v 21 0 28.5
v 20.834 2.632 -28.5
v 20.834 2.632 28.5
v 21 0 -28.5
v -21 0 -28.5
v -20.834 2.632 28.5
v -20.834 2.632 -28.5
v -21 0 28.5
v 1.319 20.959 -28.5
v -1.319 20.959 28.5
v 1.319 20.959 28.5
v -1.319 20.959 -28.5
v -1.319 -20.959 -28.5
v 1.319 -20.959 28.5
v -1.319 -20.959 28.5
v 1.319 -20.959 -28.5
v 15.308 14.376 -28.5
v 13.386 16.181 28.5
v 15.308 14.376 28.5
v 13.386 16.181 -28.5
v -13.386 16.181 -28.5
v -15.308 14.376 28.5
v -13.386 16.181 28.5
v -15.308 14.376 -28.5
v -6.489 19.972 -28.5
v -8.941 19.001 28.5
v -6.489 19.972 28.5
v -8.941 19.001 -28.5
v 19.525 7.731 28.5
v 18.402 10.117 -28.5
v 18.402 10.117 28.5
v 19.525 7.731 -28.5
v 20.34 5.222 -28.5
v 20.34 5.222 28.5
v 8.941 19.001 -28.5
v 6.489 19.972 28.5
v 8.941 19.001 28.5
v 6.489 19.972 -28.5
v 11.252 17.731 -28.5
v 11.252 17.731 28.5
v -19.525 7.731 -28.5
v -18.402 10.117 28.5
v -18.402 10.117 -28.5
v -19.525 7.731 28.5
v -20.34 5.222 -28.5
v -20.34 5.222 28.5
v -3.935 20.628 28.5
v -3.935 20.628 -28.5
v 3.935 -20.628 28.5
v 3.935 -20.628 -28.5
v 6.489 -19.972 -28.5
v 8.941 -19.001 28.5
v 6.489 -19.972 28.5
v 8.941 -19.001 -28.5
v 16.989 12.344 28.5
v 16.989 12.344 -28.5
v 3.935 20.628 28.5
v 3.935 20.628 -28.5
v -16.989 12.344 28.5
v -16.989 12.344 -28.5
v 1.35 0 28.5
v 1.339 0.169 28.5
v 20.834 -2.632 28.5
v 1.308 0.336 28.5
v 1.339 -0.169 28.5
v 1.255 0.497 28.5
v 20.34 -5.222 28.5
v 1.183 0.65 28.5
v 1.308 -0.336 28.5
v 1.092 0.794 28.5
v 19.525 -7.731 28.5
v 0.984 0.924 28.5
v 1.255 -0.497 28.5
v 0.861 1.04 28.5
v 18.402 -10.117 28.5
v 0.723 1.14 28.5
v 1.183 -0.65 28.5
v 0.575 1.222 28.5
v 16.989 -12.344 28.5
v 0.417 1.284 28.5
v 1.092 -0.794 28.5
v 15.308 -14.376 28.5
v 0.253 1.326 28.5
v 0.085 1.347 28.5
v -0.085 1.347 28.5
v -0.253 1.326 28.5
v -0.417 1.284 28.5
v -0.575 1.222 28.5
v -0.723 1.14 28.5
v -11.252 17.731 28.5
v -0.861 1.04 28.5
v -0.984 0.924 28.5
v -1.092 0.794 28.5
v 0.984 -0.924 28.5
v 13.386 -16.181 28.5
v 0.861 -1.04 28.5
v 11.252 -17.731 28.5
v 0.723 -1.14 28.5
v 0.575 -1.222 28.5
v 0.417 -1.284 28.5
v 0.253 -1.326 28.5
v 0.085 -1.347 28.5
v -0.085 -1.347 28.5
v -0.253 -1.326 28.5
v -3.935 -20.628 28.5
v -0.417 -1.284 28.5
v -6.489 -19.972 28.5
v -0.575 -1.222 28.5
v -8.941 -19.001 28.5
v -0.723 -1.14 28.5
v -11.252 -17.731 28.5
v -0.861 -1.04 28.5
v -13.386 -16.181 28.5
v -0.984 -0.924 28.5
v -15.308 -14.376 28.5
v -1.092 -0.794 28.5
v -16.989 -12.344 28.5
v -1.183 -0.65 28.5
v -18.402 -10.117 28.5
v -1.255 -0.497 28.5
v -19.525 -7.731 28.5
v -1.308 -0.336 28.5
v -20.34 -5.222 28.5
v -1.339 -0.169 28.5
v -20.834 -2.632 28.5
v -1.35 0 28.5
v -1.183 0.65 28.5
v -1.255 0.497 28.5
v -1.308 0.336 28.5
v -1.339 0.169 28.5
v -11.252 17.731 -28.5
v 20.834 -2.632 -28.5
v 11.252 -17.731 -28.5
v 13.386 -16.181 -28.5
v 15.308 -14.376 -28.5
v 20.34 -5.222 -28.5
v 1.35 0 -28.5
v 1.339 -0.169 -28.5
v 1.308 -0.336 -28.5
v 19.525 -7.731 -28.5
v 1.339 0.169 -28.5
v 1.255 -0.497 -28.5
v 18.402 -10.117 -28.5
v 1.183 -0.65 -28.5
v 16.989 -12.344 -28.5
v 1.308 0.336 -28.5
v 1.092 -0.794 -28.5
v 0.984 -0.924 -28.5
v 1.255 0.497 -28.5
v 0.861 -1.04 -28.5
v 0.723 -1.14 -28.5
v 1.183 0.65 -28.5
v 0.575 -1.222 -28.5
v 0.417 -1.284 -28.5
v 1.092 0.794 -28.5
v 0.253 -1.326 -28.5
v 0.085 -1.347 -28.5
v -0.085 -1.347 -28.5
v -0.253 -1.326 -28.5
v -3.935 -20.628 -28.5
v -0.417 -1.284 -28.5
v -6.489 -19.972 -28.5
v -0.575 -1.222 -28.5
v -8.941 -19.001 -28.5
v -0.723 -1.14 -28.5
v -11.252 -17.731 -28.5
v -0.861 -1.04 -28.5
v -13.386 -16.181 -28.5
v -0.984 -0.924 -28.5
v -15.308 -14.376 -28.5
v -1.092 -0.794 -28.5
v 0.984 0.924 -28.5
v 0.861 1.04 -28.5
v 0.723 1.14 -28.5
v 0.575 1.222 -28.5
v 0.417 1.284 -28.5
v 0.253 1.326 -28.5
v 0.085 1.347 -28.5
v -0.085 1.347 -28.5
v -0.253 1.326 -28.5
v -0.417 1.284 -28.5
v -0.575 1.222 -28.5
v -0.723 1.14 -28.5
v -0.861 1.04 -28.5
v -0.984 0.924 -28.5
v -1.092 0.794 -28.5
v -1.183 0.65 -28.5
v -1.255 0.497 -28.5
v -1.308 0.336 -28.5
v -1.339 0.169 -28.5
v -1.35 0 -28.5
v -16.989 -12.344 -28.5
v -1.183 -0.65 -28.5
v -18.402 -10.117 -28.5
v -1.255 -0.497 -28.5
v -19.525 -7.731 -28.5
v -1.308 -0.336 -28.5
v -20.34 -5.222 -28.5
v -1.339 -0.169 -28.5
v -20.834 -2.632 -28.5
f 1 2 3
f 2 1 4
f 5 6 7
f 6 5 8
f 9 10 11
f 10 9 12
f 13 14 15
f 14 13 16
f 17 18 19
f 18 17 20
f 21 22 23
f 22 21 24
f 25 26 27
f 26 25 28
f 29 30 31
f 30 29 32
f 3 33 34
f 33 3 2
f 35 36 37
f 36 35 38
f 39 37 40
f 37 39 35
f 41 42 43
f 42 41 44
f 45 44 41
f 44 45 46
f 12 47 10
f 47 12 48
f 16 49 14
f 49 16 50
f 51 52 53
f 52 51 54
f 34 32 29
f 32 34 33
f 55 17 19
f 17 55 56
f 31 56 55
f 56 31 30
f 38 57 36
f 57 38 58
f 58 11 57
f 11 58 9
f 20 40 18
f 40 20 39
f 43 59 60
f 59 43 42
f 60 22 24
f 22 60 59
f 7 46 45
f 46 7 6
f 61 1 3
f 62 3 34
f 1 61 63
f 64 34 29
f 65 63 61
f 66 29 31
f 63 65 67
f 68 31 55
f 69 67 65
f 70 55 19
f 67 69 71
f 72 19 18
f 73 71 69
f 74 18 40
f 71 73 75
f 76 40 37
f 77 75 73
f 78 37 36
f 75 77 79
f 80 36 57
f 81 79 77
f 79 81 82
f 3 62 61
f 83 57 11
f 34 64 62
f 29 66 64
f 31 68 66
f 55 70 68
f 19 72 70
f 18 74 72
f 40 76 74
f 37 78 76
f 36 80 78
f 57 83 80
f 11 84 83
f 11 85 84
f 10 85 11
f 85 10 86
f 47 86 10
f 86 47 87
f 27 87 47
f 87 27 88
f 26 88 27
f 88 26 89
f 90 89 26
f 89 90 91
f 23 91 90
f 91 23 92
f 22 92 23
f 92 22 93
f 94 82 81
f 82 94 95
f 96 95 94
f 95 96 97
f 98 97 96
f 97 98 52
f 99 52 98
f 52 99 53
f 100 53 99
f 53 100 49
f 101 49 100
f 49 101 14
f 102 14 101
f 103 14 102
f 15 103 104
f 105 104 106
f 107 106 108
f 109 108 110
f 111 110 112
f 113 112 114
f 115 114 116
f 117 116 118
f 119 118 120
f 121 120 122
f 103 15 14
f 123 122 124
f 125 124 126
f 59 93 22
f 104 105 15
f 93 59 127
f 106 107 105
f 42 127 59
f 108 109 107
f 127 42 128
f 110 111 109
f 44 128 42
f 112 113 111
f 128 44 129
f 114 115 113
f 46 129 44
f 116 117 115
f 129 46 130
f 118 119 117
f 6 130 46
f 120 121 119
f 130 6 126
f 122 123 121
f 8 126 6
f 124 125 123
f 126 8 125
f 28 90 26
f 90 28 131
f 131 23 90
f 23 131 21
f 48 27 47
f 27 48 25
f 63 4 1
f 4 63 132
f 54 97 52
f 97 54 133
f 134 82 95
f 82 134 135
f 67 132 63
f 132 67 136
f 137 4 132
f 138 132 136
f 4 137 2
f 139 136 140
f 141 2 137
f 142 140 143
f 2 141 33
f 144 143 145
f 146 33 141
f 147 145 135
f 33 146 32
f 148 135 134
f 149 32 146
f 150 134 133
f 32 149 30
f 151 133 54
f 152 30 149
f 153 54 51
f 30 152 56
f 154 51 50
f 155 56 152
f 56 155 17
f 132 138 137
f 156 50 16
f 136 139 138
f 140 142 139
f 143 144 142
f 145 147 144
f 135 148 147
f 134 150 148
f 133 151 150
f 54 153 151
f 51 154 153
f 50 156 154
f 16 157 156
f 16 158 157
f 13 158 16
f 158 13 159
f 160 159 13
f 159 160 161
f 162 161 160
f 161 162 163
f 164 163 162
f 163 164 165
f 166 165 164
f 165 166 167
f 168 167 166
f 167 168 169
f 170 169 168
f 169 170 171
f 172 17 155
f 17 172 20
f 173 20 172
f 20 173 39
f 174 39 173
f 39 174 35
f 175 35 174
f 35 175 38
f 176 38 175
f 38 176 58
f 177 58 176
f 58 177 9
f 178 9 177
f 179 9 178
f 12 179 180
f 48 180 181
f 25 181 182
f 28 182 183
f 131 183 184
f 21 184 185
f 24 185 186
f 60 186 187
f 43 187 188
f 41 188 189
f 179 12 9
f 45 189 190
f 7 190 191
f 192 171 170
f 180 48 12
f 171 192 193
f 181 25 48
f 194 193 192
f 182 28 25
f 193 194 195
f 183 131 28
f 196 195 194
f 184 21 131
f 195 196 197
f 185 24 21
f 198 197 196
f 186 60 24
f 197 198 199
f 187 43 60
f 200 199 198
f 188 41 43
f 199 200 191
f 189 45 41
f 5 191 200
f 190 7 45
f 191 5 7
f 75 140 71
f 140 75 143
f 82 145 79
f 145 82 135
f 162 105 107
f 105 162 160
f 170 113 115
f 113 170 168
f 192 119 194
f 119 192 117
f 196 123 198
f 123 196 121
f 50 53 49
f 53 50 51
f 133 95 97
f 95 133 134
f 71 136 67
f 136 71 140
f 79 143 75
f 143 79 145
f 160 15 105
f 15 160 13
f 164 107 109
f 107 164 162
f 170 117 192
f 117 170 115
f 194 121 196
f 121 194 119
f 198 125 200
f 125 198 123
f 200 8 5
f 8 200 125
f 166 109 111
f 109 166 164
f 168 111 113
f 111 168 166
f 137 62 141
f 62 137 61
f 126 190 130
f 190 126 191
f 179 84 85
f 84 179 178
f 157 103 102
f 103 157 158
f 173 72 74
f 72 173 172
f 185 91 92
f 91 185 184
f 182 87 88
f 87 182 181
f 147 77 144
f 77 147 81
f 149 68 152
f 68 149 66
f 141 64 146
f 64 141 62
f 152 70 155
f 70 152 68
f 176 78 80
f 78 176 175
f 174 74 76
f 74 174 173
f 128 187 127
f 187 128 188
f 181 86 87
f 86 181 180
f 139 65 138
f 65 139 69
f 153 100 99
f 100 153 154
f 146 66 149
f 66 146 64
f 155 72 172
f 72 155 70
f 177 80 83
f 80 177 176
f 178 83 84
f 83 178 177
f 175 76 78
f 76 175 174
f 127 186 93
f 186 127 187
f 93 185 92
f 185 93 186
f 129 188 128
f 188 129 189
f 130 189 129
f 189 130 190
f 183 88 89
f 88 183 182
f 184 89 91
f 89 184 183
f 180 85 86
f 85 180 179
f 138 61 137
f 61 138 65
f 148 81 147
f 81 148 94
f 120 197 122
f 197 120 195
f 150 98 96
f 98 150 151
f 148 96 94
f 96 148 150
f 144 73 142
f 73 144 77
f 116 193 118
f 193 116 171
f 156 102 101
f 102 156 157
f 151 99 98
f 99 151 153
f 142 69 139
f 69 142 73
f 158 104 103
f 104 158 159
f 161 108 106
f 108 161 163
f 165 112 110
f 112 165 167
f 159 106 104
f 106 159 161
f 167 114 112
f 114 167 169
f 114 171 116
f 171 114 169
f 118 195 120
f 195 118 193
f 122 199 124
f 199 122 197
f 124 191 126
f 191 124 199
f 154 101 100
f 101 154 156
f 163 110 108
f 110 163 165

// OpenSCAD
$fn = 50;


difference() {
	union() {
		translate(v = [0, 0, -28.5000000000]) {
			cylinder(h = 57, r = 21.0000000000);
		}
	}
	union() {
		translate(v = [0, 0, -100.0000000000]) {
			cylinder(h = 200, r = 1.3500000000);
		}
	}
}
